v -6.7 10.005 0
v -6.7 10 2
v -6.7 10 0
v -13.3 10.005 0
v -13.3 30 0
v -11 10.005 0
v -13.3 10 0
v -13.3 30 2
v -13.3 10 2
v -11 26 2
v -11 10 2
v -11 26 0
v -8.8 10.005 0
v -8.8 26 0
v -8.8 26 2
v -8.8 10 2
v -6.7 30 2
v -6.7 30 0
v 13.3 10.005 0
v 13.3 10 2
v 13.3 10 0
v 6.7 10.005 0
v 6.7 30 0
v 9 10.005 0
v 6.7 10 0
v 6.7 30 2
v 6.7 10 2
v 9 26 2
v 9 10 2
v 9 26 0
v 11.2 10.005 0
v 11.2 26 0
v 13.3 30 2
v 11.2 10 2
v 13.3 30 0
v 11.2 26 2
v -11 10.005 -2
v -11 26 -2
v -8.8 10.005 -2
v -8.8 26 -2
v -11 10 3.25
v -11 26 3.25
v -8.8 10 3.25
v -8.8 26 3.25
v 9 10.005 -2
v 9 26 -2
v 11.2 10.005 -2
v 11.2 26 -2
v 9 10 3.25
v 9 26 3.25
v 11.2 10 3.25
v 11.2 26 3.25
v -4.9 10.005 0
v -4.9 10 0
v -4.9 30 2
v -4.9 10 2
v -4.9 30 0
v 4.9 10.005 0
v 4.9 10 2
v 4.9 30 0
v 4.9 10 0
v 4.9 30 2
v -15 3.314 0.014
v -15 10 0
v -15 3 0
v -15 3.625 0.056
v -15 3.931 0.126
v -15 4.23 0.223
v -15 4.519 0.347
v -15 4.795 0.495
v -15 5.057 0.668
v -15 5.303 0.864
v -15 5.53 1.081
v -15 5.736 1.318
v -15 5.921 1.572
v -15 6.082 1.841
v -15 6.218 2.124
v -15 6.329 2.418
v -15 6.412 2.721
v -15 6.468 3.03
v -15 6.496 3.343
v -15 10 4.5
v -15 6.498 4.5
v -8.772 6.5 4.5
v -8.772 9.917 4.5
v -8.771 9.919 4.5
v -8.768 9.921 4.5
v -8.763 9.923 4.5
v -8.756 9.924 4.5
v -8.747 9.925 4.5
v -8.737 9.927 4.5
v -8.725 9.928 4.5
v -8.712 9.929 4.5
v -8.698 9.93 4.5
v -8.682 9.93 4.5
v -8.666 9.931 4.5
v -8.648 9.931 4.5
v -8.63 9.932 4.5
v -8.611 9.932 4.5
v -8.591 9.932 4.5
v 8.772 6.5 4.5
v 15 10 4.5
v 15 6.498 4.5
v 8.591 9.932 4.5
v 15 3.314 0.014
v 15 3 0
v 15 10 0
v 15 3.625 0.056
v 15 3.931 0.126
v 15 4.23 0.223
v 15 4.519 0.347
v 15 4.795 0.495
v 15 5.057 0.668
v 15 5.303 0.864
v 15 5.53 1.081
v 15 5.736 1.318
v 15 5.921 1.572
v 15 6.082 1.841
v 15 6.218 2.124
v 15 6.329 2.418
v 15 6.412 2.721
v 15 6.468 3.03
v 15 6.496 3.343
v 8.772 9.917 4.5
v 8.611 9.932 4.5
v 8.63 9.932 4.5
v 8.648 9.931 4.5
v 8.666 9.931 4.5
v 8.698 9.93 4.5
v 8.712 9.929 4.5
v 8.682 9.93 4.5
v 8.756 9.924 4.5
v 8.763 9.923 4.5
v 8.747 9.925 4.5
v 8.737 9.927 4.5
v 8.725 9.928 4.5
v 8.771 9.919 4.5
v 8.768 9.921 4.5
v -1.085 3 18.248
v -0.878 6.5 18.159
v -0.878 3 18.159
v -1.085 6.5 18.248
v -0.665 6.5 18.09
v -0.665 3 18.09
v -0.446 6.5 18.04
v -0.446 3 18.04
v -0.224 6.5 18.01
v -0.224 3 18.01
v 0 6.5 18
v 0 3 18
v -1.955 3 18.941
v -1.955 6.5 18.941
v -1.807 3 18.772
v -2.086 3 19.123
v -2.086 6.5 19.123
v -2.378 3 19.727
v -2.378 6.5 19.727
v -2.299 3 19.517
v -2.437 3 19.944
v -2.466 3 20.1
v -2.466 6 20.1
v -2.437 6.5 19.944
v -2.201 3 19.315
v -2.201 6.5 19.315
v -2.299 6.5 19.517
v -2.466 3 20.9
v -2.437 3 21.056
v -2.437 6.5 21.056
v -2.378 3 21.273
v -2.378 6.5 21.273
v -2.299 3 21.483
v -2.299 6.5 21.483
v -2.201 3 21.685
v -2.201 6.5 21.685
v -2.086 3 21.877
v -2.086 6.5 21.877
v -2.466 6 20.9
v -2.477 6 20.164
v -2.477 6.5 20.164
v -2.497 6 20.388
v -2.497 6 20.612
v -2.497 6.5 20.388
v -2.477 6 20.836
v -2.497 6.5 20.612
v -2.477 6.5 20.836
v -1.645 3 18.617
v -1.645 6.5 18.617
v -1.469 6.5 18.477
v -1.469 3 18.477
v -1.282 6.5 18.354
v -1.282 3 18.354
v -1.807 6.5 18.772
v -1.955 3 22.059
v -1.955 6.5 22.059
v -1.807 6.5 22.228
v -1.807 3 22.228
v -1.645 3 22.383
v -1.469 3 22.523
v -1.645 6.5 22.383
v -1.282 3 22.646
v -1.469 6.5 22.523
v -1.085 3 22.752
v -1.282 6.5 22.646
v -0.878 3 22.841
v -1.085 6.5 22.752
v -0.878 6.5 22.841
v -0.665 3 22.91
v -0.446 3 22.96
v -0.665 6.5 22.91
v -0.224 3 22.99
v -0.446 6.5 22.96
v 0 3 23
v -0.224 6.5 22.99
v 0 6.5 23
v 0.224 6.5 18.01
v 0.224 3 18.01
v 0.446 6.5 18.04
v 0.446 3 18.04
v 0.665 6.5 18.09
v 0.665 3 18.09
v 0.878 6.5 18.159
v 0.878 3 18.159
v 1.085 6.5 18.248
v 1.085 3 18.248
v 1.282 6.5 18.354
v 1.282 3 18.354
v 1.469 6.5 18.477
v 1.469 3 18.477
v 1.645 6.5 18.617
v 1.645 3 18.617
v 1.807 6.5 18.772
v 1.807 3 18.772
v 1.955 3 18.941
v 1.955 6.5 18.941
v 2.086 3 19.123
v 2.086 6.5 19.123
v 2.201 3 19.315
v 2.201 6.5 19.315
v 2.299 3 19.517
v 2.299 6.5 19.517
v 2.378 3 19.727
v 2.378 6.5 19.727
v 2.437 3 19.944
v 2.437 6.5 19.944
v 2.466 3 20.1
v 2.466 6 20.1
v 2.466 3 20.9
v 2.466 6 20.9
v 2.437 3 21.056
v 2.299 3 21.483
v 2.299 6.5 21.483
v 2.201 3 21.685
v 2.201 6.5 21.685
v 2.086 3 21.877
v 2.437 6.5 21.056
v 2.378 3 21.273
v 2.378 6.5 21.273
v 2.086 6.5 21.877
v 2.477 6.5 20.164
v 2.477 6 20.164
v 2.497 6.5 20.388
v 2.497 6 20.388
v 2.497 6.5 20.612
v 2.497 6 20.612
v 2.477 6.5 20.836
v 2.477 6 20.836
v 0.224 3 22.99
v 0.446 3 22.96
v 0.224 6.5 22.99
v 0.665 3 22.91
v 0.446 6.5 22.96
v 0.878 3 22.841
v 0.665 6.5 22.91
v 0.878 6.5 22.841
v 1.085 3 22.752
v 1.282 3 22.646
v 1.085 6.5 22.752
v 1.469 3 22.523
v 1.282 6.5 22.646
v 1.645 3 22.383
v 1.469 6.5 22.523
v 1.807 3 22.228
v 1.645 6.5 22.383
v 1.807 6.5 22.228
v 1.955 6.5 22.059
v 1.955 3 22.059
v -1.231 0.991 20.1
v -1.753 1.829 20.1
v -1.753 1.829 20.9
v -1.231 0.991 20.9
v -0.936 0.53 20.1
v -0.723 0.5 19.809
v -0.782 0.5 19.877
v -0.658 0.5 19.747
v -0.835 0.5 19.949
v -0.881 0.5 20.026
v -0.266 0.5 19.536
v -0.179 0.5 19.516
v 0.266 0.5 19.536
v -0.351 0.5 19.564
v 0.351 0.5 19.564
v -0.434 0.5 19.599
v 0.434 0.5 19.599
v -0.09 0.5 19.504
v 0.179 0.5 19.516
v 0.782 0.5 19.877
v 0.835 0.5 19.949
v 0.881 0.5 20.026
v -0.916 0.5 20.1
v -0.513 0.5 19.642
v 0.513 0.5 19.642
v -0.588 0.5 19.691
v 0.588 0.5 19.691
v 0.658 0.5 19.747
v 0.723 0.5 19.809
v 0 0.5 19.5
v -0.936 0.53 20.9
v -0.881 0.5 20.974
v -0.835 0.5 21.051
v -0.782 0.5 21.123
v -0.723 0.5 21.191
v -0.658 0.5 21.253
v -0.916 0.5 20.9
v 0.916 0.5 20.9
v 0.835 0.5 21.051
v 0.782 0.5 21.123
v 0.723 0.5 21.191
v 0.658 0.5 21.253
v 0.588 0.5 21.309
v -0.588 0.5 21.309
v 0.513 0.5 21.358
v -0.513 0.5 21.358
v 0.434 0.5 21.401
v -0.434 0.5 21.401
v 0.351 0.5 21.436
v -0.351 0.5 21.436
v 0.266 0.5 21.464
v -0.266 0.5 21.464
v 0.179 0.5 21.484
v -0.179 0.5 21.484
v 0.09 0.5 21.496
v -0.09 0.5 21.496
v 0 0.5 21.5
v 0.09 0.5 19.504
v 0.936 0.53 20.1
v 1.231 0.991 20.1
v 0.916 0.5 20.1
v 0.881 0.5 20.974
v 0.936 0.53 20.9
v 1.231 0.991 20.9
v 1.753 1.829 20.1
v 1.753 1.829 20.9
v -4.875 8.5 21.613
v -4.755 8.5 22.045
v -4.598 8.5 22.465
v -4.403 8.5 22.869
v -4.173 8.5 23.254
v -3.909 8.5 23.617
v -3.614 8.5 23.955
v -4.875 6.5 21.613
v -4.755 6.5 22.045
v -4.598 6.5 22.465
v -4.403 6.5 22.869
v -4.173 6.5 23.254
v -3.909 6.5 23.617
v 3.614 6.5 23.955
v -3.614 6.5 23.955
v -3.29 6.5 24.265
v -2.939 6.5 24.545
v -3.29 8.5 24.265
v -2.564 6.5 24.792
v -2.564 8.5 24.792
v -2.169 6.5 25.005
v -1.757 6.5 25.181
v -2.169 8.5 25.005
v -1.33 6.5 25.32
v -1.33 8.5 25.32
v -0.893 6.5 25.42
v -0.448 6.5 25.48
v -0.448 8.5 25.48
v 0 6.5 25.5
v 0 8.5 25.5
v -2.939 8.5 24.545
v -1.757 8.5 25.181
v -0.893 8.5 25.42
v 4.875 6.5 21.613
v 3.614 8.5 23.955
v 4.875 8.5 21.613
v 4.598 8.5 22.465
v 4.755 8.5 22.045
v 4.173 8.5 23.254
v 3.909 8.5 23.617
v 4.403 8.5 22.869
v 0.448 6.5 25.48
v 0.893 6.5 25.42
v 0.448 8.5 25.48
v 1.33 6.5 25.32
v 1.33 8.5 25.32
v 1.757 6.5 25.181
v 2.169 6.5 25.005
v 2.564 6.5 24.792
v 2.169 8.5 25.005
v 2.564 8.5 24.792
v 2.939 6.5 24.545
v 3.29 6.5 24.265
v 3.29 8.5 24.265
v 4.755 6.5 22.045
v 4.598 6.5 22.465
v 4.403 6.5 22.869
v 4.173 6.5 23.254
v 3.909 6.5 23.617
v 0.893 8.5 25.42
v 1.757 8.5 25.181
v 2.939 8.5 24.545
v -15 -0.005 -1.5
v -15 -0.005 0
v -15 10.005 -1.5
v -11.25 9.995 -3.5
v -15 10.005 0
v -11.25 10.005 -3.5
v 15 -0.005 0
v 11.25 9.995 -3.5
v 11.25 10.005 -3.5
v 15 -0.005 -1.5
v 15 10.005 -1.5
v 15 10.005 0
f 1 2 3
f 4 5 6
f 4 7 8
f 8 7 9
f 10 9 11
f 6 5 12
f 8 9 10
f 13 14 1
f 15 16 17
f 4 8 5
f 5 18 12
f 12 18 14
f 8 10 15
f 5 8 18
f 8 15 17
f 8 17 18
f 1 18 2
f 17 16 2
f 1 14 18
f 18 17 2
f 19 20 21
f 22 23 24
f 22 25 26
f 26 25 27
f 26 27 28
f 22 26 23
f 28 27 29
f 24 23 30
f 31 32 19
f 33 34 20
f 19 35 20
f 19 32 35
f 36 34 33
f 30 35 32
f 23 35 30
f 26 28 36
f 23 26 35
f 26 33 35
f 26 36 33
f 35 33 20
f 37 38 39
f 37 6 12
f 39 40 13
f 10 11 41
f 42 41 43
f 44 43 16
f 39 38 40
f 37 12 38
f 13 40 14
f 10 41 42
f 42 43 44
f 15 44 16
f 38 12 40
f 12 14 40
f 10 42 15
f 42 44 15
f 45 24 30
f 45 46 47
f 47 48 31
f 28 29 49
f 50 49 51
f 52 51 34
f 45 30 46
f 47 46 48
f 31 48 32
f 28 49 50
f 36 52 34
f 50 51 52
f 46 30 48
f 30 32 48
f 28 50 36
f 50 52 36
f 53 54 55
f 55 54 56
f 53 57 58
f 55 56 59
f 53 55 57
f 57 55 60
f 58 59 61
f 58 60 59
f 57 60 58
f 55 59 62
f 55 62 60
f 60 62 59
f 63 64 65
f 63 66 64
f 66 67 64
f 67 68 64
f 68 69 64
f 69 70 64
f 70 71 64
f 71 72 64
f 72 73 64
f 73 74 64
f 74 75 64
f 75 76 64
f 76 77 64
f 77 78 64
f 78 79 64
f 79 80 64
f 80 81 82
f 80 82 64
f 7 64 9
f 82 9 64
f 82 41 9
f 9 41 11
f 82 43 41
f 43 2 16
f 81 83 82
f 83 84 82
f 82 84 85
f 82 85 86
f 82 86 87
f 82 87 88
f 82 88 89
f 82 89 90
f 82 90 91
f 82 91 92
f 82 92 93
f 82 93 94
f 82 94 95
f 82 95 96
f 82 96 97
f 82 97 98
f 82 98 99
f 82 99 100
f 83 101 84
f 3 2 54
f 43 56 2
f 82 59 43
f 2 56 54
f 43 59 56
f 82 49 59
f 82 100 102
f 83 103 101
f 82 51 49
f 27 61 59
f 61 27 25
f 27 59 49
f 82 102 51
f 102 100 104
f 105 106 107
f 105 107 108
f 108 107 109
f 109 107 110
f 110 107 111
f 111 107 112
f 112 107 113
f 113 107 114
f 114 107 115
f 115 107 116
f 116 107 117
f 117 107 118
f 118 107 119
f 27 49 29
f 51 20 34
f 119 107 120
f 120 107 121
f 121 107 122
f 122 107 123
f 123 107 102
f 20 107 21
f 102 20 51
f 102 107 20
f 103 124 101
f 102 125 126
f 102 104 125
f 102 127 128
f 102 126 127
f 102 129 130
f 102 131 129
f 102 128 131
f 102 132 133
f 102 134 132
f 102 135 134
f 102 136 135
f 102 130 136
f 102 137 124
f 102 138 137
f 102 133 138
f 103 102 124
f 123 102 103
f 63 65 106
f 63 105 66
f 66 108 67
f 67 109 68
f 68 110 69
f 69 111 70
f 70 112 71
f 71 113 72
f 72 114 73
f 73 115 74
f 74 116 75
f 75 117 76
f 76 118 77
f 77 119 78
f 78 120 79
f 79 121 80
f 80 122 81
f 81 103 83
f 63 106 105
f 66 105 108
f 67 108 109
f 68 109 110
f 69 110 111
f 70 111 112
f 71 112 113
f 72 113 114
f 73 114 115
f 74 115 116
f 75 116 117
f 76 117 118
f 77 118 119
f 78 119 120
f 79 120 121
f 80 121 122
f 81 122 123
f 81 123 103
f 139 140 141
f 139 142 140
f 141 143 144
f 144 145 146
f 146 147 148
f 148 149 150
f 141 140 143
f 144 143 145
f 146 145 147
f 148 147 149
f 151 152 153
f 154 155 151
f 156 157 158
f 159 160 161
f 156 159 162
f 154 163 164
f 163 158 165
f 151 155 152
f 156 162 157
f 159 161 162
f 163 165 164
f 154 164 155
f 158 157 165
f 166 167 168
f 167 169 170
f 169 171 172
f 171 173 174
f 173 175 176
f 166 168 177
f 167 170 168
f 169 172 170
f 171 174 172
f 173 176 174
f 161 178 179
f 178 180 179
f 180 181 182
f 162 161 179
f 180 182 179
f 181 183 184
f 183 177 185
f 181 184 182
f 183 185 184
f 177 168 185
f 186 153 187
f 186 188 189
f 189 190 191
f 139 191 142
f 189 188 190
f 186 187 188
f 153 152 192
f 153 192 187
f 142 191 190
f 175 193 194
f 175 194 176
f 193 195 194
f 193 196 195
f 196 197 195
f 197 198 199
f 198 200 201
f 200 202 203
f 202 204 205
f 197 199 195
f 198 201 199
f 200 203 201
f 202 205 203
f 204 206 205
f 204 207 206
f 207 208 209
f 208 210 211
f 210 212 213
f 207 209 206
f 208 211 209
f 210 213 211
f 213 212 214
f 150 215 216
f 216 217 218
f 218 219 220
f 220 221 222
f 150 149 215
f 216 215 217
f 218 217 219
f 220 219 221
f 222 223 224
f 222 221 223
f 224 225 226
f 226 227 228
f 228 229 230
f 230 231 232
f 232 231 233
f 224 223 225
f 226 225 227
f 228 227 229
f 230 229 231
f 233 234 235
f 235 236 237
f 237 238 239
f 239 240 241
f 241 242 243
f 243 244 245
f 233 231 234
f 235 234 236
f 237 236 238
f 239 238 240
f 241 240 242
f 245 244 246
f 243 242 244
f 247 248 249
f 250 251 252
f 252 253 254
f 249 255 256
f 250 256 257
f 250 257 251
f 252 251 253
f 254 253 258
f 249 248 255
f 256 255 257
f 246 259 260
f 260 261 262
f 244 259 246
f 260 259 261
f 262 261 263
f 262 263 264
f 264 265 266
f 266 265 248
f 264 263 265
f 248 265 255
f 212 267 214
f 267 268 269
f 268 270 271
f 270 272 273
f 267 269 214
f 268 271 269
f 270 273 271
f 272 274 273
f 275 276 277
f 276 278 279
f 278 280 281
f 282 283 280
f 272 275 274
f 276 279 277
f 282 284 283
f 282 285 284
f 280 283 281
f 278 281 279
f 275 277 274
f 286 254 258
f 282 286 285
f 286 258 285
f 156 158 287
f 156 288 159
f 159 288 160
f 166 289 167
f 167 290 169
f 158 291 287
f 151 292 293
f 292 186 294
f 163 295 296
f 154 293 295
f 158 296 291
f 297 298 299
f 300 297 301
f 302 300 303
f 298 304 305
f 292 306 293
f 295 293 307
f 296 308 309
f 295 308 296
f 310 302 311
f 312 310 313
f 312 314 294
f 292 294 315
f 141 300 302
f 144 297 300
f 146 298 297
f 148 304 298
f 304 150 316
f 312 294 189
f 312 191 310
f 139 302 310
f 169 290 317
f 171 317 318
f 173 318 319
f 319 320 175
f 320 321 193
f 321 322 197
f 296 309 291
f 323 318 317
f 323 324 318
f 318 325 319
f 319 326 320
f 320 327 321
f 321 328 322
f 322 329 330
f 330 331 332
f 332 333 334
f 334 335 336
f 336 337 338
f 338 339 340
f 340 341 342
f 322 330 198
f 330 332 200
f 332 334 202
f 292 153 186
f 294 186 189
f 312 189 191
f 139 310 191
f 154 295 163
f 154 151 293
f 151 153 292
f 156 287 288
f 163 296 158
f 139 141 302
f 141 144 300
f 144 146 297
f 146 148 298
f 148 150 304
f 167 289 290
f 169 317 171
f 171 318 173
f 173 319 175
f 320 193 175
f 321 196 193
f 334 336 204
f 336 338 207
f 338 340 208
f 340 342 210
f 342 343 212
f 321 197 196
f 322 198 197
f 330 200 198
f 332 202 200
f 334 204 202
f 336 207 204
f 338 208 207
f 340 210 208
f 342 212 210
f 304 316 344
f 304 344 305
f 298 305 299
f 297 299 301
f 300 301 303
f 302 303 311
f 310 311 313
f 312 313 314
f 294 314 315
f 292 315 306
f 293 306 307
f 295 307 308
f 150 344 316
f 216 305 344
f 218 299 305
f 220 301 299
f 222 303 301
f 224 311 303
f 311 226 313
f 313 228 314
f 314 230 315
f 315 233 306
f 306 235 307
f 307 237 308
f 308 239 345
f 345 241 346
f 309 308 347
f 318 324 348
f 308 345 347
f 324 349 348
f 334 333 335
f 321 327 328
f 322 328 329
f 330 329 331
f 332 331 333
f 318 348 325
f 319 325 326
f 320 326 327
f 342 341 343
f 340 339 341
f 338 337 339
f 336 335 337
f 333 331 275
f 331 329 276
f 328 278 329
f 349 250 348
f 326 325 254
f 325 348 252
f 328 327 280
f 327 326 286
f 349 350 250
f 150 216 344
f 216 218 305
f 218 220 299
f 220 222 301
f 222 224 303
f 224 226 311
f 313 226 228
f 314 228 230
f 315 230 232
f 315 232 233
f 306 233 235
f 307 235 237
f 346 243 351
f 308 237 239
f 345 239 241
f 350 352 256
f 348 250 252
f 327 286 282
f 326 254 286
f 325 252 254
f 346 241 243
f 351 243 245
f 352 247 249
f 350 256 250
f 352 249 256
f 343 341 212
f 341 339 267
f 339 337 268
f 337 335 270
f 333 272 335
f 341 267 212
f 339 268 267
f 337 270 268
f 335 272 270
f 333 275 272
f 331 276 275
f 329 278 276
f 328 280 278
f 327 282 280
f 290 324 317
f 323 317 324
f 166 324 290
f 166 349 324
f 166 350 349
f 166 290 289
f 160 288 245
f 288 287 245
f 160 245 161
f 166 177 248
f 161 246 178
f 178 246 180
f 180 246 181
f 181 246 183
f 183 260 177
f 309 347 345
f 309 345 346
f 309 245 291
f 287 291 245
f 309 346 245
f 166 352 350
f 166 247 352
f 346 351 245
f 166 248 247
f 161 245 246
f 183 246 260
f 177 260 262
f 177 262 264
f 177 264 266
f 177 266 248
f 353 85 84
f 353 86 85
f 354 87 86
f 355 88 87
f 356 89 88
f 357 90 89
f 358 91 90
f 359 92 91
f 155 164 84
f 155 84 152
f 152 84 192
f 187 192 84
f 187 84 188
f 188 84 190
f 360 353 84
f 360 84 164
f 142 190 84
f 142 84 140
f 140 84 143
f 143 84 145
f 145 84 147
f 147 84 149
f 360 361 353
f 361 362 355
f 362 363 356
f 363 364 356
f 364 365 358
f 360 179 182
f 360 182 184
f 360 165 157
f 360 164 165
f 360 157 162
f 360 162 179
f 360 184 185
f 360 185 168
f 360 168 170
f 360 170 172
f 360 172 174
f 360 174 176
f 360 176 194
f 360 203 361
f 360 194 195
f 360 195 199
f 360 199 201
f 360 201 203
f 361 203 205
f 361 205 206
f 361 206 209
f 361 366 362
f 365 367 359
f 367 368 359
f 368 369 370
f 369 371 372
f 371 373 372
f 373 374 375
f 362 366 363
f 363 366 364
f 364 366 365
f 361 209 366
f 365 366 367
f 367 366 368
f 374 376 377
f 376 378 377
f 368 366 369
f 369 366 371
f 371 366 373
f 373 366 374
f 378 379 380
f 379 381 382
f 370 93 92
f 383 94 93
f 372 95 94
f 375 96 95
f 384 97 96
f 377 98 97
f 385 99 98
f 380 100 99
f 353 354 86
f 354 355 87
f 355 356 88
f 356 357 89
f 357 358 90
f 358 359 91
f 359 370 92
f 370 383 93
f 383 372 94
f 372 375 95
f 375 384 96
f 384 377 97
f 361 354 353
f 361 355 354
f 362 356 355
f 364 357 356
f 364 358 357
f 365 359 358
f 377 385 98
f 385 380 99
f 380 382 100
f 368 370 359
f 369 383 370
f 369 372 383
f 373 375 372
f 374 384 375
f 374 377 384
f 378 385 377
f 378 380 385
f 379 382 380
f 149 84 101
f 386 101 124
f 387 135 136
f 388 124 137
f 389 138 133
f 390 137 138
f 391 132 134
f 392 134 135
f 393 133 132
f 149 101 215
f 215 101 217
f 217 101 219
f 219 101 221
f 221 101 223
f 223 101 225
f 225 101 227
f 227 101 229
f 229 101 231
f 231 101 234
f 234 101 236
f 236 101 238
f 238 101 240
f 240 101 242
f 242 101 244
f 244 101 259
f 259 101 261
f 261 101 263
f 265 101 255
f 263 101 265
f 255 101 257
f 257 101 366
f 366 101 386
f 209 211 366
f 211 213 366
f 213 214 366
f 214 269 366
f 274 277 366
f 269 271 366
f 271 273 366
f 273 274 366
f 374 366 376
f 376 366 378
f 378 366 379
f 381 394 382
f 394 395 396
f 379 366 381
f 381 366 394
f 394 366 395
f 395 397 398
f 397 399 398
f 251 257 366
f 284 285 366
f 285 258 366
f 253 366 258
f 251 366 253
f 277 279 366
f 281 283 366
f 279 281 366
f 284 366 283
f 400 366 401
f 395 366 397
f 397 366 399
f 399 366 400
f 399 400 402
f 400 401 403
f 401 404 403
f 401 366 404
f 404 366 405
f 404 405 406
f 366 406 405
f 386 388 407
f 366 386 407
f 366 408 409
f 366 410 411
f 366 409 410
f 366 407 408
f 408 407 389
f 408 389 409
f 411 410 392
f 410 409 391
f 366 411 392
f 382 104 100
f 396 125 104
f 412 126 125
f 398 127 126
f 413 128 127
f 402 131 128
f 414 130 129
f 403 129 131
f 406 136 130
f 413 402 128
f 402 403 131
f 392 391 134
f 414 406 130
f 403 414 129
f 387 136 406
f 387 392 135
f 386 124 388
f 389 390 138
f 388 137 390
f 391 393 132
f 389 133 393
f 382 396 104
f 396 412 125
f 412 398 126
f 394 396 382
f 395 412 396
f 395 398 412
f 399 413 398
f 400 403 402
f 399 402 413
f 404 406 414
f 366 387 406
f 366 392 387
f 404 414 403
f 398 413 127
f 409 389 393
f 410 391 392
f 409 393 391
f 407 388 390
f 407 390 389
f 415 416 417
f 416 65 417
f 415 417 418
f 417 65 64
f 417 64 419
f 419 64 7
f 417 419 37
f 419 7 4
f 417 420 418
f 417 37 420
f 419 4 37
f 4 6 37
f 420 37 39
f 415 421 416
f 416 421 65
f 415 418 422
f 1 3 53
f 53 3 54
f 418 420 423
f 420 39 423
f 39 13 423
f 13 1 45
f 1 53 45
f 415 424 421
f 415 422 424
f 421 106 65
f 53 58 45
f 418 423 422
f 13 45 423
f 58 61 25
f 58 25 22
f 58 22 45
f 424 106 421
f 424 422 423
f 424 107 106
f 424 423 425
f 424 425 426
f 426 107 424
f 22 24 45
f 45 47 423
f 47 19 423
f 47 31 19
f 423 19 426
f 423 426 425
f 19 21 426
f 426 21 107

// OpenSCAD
$fn=70;

module angledBottom() {
    hull() {
        translate([0,0,-1.5/2]) {
            cube([30,0.01,1.5], center=true);
        }

        translate([0,10,-3.5/2]) {
            cube([22.5,0.01,3.5], center=true);
        }

        translate([0,10,-1.5/2]) {
            cube([30,0.01,1.5], center=true);
        }
    }
}

module curvedInterface() {
    difference() {
        translate([0,5,4.5/2]) {
            cube([30,10,4.5], center=true);
        }
        
        hull() {
            translate([-40/2,6.5-3.5,3.5]) {
                rotate([0,90,0]) {
                    cylinder(r=3.5, h=40);
                }
            }
            
            translate([0,-10,3.5]) {
                cube([40,10,7], center=true);
            }
            
            translate([0,1.5,10]) {
                cube([40,10,7], center=true);
            }
        }
    }
}

module  clip() {
    hull() {
        translate([0,6.5,20.5]) {
            rotate([0,90,90]) {
                cylinder(d=10, h=2);
            }
        }
        
        translate([0,6.5+(3.5/2),4-1]) {
            cube([18,3.5,1], center=true);
        }
    }
    
    module knub() {
        module shaft() {
            rotate([0,90,90]) {
                cylinder(d=5, h=3.5);
                translate([0,0,-2.5]) cylinder(d2=5, d1=2, h=2.5);
            }
        }
        
        module relief() {
            translate([0,-2,0]) cube([10,10,0.8], center=true);
        }
        
        translate([0,3,20.5]) {
            difference() {
                shaft();
                relief();
            }
        }
    }
    
    knub();
}

module rail() {
    module side() {
        translate([0,0,-0.5]) {
            translate([0,20,1.5]) {
                cube([6.6,20,2], center=true);
            }
            translate([-1,10,-3/2]) {
                cube([2.2,16,5.25]);
            }
        }
    }
    
    module centre() {
        translate([0,20,1]) {
            cube([9.8,20,2], center=true);
        }
    }
    
    translate([10,0,0]) side();
    centre();
    translate([-10,0,0]) side();
}

rail();

//%translate([0,0,-3.5]) cube([20,20,3.5]);


angledBottom();
curvedInterface();
clip();
